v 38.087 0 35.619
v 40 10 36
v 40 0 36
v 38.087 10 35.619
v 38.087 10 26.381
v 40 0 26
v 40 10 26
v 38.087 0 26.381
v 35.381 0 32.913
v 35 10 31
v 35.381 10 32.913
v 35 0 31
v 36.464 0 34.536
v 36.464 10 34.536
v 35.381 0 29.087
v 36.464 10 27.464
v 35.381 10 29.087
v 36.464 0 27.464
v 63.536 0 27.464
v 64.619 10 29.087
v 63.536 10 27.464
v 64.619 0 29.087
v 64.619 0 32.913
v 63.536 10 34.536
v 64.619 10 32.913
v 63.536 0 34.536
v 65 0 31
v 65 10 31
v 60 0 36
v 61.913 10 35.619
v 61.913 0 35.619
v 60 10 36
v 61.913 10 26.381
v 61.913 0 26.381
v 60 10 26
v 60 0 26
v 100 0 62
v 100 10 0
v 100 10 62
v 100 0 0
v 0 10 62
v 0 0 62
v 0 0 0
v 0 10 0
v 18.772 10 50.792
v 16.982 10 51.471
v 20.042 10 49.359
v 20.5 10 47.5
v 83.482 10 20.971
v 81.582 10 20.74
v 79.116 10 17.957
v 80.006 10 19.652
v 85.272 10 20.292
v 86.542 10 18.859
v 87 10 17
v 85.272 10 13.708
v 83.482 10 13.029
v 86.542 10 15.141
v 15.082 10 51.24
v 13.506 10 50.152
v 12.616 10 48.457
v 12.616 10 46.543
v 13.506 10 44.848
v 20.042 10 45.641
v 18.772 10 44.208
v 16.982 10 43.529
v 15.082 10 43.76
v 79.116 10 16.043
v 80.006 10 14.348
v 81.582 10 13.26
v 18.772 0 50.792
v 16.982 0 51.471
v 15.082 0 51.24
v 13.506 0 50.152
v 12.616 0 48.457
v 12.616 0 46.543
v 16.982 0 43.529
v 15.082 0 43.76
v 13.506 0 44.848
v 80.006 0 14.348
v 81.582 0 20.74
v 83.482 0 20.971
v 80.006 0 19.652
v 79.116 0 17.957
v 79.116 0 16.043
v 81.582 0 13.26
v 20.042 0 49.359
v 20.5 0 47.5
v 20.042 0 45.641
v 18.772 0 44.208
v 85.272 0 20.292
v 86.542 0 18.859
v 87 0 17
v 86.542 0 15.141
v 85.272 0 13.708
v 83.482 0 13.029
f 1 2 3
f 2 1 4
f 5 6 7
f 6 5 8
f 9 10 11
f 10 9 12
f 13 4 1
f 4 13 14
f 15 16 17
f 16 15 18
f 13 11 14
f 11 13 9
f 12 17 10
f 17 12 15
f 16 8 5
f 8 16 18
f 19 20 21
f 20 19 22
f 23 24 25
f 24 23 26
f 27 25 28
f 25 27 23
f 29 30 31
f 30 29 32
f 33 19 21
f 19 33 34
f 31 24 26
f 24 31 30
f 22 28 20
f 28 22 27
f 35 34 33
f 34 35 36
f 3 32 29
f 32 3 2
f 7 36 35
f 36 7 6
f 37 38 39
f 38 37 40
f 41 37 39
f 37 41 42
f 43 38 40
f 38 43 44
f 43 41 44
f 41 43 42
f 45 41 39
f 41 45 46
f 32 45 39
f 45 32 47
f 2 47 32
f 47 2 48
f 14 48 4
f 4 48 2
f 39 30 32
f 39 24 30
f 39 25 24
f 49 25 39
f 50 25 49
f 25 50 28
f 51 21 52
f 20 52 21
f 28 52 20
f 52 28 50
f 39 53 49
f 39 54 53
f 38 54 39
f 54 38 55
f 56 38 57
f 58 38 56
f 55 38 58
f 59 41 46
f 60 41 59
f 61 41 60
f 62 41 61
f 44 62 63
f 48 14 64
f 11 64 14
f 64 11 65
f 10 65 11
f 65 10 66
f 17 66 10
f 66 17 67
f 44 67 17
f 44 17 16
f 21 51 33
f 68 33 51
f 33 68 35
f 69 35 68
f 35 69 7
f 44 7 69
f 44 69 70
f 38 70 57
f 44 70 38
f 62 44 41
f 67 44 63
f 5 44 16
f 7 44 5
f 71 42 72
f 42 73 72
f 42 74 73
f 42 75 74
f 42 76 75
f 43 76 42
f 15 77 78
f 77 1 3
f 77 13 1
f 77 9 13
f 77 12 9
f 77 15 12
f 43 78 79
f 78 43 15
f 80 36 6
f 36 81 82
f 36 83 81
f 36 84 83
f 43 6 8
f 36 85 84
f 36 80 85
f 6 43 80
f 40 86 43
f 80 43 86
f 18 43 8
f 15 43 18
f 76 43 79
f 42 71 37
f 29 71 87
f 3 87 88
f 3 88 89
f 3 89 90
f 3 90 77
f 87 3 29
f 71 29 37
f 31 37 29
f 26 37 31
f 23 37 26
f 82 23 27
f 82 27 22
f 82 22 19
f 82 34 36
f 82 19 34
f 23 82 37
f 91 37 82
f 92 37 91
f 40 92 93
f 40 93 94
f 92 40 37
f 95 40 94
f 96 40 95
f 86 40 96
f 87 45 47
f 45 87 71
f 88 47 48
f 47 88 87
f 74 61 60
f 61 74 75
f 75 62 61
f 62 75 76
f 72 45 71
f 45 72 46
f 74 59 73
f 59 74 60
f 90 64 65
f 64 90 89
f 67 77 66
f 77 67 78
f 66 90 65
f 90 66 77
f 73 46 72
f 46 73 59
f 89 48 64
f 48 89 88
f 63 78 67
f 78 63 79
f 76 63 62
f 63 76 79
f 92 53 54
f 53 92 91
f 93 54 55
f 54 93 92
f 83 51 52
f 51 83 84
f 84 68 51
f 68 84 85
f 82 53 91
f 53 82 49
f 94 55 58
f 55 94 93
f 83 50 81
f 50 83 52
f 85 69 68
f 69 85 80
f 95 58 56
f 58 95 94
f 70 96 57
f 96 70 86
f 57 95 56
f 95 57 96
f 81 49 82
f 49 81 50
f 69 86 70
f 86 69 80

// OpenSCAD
/* doodle-meta {"version":1,"parameters":{"width":{"label":"Overall width","description":"Changes the body width","unit":"mm","feature":"body_width"},"height":{"label":"Overall height","description":"Changes the body height","unit":"mm","feature":"body_height"},"thickness":{"label":"Plate thickness","description":"Changes the plate depth","unit":"mm","feature":"body_thickness"},"hole_diameter":{"label":"Mounting hole diameter","description":"Changes the diameter of the mounting holes","unit":"mm","feature":"holes"},"slot_length":{"label":"Slot length","description":"Changes the length of the central slot","unit":"mm","feature":"slot"},"slot_width":{"label":"Slot width","description":"Changes the width of the central slot","unit":"mm","feature":"slot"}},"features":{"body_width":{"kind":"dimension","axis":"x","label":"Overall width"},"body_height":{"kind":"dimension","axis":"z","label":"Overall height"},"body_thickness":{"kind":"dimension","axis":"y","label":"Plate thickness"},"holes":{"kind":"region","label":"Mounting Holes","min":[{"parameter":"width","scale":0.165,"offset":0},{"parameter":"thickness","scale":0,"offset":0},{"parameter":"height","scale":0.766,"offset":0}],"max":[{"parameter":"width","scale":0.83,"offset":0},{"parameter":"thickness","scale":1,"offset":0},{"parameter":"height","scale":0.274,"offset":0}]},"slot":{"kind":"region","label":"Central Slot","min":[{"parameter":"width","scale":0.35,"offset":0},{"parameter":"thickness","scale":0,"offset":0},{"parameter":"height","scale":0.419,"offset":0}],"max":[{"parameter":"width","scale":0.65,"offset":0},{"parameter":"thickness","scale":1,"offset":0},{"parameter":"height","scale":0.581,"offset":0}]}}} */

// Parameters
width = 100;
height = 62;
thickness = 10;
hole_diameter = 8;
slot_length = 30;
slot_width = 10;

// Derived constants (not editable)
eps = 0.1;

// Hole positions (from specification)
hole1_x = 16.5;
hole1_z = 47.5;
hole2_x = 83.0;
hole2_z = 17.0;

// Slot position (centered)
slot_x = width / 2;
slot_z = height / 2;

module plate_body() {
    cube([width, thickness, height], center=false);
}

module hole_cutter(d, x, z) {
    // Cylinder axis along Y (front-to-back)
    // rotate([90,0,0]) makes cylinder axis Y
    // center=true centers it along Y
    translate([x, thickness/2, z])
        rotate([90, 0, 0])
            cylinder(d=d, h=thickness + 2*eps, center=true);
}

module slot_cutter(l, w, x, z) {
    // Slot is horizontal (along X)
    // Stadium shape: two cylinders + connecting box
    // Cut along Y
    translate([x, thickness/2, z]) {
        // Left cylinder
        translate([-l/2 + w/2, 0, 0])
            rotate([90, 0, 0])
                cylinder(d=w, h=thickness + 2*eps, center=true);
        
        // Right cylinder
        translate([l/2 - w/2, 0, 0])
            rotate([90, 0, 0])
                cylinder(d=w, h=thickness + 2*eps, center=true);
        
        // Connecting box
        // Box spans from left cylinder center to right cylinder center in X
        // Width in X: l - w
        // Height in Z: w
        // Depth in Y: thickness + 2*eps
        translate([0, 0, 0])
            cube([l - w, thickness + 2*eps, w], center=true);
    }
}

// Main design
difference() {
    plate_body();
    
    // Cut mounting holes
    hole_cutter(hole_diameter, hole1_x, hole1_z);
    hole_cutter(hole_diameter, hole2_x, hole2_z);
    
    // Cut central slot
    slot_cutter(slot_length, slot_width, slot_x, slot_z);
}
